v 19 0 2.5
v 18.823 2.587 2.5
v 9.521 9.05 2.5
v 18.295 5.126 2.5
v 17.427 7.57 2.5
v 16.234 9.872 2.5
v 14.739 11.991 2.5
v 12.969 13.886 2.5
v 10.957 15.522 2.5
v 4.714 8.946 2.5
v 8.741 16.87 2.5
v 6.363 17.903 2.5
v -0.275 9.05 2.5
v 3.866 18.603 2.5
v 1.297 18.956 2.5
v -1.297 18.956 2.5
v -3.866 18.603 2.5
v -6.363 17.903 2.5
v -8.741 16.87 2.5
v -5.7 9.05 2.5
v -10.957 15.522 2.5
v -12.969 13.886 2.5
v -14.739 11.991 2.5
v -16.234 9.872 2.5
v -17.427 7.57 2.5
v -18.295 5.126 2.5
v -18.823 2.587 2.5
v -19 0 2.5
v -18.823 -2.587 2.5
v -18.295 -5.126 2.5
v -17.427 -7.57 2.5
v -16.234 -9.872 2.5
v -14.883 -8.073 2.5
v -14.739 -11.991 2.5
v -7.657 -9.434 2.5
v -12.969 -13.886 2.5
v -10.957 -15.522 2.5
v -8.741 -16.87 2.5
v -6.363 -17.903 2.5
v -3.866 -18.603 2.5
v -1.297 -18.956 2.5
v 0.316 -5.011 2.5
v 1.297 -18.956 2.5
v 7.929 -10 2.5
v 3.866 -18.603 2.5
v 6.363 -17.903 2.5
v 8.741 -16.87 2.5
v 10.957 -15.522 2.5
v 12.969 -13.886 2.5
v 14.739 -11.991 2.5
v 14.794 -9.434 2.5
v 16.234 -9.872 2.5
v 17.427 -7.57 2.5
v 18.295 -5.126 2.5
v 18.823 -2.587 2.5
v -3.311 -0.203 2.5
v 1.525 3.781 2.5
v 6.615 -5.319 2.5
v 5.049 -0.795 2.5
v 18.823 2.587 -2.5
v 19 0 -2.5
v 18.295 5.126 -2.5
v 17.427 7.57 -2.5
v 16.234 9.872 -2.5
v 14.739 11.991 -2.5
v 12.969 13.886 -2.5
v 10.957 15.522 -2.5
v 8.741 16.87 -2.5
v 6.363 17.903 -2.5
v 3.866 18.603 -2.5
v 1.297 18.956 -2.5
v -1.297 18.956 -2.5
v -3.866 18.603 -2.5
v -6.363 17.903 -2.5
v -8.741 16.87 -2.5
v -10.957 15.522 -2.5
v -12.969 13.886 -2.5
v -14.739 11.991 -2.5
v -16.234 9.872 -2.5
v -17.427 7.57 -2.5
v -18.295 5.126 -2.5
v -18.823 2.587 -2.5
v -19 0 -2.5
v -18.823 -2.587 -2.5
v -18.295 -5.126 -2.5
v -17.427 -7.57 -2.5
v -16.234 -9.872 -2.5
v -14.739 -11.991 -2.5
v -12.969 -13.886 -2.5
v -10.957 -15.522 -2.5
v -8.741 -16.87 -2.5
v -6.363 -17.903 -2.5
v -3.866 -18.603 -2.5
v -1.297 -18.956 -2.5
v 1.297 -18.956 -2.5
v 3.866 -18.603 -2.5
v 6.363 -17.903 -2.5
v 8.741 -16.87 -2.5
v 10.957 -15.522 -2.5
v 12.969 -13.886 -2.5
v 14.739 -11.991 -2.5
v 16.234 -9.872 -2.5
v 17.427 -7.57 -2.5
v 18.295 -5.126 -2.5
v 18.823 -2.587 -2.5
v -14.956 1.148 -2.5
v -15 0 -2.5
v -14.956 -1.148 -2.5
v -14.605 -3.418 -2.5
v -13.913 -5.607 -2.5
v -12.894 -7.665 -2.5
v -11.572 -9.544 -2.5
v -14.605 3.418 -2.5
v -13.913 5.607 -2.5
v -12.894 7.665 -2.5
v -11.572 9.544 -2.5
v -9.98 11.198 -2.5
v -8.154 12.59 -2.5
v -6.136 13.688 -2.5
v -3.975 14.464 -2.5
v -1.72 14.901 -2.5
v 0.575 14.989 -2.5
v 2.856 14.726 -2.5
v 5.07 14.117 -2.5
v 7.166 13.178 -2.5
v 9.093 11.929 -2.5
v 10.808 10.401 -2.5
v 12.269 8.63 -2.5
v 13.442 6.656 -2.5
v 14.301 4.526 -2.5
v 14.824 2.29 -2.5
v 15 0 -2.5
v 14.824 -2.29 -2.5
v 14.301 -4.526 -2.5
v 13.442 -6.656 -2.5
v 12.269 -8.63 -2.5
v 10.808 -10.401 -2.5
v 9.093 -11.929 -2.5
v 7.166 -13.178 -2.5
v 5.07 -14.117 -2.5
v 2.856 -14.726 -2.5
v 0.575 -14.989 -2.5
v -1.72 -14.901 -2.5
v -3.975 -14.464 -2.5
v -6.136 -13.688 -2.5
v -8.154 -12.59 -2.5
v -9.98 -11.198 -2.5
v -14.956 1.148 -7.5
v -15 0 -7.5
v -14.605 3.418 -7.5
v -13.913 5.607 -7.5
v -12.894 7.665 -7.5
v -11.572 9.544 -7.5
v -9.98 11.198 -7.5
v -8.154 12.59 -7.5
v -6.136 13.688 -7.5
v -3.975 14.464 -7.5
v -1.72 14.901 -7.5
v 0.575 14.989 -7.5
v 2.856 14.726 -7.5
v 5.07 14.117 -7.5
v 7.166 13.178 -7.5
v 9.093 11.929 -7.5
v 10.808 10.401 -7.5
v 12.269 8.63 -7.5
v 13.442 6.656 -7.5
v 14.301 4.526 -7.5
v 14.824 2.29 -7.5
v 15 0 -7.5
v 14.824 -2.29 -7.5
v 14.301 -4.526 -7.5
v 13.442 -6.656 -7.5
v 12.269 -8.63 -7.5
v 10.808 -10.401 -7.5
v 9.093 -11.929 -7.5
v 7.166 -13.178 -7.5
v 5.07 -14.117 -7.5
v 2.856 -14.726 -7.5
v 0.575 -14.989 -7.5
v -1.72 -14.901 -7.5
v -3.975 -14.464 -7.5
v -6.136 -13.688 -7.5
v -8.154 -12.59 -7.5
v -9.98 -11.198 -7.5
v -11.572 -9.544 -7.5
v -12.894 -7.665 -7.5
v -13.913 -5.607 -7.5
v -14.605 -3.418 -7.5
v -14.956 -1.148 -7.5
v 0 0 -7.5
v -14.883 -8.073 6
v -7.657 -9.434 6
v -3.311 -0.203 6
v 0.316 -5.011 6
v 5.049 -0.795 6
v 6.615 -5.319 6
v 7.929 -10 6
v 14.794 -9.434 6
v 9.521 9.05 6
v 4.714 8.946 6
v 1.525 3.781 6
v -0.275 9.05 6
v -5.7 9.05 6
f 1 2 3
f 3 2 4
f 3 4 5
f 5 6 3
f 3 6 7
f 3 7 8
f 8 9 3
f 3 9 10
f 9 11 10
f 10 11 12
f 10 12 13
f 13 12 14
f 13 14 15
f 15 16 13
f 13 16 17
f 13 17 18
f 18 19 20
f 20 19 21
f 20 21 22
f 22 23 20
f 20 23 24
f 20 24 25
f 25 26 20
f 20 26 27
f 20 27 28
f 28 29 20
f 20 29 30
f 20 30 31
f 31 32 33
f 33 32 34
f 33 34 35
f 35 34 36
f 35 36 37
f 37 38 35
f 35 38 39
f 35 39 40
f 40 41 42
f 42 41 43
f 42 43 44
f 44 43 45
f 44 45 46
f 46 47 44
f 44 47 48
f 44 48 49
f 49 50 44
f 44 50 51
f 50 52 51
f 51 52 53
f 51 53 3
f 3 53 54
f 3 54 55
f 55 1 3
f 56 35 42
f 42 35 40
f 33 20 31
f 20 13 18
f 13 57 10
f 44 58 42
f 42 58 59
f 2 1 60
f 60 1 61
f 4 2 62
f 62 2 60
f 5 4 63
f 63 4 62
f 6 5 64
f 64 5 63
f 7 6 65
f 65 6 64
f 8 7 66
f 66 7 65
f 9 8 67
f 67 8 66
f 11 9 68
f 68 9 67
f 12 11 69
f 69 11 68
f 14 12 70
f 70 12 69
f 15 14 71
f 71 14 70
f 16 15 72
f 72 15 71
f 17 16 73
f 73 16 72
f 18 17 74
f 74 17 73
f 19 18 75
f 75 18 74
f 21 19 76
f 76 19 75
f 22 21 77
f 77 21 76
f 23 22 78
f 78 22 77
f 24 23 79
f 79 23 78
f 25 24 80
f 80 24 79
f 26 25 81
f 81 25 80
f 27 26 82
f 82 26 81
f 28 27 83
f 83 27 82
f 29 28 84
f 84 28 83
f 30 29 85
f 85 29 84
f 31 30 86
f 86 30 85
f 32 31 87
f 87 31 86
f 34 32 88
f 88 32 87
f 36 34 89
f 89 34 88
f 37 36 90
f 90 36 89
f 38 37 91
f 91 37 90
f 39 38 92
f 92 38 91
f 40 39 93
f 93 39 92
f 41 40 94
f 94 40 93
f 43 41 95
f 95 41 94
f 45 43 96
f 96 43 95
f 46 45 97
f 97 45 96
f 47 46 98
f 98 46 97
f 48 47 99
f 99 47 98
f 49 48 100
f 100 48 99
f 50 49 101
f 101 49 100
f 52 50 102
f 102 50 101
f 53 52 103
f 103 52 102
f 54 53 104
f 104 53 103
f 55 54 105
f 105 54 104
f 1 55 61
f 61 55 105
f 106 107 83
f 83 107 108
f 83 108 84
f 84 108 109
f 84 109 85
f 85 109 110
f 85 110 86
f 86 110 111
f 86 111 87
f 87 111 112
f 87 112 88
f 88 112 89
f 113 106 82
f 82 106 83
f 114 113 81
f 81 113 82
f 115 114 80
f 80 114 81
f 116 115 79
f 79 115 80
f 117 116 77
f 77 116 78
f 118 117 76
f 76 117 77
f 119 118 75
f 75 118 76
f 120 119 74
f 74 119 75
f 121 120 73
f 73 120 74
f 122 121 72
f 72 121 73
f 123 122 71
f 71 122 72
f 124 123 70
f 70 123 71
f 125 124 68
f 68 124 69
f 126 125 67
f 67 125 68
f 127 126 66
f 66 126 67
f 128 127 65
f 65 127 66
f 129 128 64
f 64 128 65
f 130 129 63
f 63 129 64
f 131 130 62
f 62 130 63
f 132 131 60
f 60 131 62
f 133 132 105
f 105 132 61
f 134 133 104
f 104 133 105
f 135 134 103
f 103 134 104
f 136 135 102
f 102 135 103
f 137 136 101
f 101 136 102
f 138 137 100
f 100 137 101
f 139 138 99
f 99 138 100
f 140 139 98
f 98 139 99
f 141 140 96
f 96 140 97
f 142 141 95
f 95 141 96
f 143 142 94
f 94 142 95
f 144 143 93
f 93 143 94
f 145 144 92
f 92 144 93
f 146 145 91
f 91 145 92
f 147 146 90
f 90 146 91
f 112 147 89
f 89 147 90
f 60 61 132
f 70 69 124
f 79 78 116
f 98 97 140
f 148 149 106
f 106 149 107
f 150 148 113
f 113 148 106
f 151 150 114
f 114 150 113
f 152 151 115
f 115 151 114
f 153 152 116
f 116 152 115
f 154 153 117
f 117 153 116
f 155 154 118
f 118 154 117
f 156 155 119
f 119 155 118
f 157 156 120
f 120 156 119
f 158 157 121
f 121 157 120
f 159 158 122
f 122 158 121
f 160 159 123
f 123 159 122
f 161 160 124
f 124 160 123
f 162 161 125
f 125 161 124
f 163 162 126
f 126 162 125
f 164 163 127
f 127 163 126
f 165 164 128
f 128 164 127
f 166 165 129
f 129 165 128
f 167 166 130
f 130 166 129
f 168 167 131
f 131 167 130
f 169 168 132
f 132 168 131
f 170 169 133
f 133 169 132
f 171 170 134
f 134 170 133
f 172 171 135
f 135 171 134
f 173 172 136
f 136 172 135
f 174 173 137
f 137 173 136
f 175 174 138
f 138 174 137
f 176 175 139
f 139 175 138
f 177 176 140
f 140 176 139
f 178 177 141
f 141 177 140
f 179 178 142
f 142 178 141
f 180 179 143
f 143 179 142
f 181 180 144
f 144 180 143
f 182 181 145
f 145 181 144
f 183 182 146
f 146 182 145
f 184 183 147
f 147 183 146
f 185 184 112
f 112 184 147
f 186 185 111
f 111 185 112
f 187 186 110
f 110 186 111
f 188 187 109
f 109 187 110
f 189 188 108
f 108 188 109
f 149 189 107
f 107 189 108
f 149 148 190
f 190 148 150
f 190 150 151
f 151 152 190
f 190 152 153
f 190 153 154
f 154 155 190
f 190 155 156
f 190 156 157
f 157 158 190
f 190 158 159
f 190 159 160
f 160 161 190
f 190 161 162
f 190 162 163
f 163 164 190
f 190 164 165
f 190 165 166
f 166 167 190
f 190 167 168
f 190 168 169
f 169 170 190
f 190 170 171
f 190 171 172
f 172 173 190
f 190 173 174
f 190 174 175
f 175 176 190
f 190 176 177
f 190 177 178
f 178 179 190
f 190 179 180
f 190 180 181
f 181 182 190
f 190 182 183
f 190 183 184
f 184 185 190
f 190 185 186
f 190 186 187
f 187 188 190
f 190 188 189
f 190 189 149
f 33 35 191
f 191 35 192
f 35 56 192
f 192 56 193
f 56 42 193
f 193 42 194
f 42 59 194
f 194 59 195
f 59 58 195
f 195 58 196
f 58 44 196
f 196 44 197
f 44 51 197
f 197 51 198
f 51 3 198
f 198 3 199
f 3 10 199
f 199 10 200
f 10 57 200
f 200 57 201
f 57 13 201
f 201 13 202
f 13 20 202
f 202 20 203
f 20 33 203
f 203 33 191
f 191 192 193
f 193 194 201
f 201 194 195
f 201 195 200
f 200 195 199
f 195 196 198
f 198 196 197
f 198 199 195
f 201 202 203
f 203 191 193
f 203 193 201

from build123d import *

# Parameters (mm, degrees)
ESBO_O1_R                = 19
RESSALTO_EXTRUS_O1_DEPTH = 2.5
ESBO_O2_R                = 15
RESSALTO_EXTRUS_O2_DEPTH = 5
RESSALTO_EXTRUS_O3_DEPTH = 3.5


with BuildPart() as part:
    # Esboço1 → Ressalto-extrusão1 (new, symmetric)
    with BuildSketch(Plane.XY):
        Circle(ESBO_O1_R)
    extrude(amount=RESSALTO_EXTRUS_O1_DEPTH, both=True)

    # Esboço2 → Ressalto-extrusão2 (add)
    with BuildSketch(Plane(origin=(0, 0, -2.5), x_dir=(-1, 0, 0), z_dir=(0, 0, -1))):
        Circle(ESBO_O2_R)
    extrude(amount=RESSALTO_EXTRUS_O2_DEPTH)

    # Esboço4 → Ressalto-extrusão3 (add)
    with BuildSketch(Plane.XY.offset(2.5)):
        Polygon((-14.8828125, -8.072675781), (-5.700117187, 9.05), (-0.275332031, 9.05), (1.525488281, 3.781484375), (4.714130859, 8.945820312), (9.521279297, 9.05), (14.793515625, -9.434453125), (7.928818359, -10), (6.615410156, -5.319355469), (5.048994141, -0.794980469), (0.316259766, -5.010537109), (-3.311425781, -0.203388672), (-7.657207031, -9.434453125), align=None)
    extrude(amount=RESSALTO_EXTRUS_O3_DEPTH)


solid = part.part
